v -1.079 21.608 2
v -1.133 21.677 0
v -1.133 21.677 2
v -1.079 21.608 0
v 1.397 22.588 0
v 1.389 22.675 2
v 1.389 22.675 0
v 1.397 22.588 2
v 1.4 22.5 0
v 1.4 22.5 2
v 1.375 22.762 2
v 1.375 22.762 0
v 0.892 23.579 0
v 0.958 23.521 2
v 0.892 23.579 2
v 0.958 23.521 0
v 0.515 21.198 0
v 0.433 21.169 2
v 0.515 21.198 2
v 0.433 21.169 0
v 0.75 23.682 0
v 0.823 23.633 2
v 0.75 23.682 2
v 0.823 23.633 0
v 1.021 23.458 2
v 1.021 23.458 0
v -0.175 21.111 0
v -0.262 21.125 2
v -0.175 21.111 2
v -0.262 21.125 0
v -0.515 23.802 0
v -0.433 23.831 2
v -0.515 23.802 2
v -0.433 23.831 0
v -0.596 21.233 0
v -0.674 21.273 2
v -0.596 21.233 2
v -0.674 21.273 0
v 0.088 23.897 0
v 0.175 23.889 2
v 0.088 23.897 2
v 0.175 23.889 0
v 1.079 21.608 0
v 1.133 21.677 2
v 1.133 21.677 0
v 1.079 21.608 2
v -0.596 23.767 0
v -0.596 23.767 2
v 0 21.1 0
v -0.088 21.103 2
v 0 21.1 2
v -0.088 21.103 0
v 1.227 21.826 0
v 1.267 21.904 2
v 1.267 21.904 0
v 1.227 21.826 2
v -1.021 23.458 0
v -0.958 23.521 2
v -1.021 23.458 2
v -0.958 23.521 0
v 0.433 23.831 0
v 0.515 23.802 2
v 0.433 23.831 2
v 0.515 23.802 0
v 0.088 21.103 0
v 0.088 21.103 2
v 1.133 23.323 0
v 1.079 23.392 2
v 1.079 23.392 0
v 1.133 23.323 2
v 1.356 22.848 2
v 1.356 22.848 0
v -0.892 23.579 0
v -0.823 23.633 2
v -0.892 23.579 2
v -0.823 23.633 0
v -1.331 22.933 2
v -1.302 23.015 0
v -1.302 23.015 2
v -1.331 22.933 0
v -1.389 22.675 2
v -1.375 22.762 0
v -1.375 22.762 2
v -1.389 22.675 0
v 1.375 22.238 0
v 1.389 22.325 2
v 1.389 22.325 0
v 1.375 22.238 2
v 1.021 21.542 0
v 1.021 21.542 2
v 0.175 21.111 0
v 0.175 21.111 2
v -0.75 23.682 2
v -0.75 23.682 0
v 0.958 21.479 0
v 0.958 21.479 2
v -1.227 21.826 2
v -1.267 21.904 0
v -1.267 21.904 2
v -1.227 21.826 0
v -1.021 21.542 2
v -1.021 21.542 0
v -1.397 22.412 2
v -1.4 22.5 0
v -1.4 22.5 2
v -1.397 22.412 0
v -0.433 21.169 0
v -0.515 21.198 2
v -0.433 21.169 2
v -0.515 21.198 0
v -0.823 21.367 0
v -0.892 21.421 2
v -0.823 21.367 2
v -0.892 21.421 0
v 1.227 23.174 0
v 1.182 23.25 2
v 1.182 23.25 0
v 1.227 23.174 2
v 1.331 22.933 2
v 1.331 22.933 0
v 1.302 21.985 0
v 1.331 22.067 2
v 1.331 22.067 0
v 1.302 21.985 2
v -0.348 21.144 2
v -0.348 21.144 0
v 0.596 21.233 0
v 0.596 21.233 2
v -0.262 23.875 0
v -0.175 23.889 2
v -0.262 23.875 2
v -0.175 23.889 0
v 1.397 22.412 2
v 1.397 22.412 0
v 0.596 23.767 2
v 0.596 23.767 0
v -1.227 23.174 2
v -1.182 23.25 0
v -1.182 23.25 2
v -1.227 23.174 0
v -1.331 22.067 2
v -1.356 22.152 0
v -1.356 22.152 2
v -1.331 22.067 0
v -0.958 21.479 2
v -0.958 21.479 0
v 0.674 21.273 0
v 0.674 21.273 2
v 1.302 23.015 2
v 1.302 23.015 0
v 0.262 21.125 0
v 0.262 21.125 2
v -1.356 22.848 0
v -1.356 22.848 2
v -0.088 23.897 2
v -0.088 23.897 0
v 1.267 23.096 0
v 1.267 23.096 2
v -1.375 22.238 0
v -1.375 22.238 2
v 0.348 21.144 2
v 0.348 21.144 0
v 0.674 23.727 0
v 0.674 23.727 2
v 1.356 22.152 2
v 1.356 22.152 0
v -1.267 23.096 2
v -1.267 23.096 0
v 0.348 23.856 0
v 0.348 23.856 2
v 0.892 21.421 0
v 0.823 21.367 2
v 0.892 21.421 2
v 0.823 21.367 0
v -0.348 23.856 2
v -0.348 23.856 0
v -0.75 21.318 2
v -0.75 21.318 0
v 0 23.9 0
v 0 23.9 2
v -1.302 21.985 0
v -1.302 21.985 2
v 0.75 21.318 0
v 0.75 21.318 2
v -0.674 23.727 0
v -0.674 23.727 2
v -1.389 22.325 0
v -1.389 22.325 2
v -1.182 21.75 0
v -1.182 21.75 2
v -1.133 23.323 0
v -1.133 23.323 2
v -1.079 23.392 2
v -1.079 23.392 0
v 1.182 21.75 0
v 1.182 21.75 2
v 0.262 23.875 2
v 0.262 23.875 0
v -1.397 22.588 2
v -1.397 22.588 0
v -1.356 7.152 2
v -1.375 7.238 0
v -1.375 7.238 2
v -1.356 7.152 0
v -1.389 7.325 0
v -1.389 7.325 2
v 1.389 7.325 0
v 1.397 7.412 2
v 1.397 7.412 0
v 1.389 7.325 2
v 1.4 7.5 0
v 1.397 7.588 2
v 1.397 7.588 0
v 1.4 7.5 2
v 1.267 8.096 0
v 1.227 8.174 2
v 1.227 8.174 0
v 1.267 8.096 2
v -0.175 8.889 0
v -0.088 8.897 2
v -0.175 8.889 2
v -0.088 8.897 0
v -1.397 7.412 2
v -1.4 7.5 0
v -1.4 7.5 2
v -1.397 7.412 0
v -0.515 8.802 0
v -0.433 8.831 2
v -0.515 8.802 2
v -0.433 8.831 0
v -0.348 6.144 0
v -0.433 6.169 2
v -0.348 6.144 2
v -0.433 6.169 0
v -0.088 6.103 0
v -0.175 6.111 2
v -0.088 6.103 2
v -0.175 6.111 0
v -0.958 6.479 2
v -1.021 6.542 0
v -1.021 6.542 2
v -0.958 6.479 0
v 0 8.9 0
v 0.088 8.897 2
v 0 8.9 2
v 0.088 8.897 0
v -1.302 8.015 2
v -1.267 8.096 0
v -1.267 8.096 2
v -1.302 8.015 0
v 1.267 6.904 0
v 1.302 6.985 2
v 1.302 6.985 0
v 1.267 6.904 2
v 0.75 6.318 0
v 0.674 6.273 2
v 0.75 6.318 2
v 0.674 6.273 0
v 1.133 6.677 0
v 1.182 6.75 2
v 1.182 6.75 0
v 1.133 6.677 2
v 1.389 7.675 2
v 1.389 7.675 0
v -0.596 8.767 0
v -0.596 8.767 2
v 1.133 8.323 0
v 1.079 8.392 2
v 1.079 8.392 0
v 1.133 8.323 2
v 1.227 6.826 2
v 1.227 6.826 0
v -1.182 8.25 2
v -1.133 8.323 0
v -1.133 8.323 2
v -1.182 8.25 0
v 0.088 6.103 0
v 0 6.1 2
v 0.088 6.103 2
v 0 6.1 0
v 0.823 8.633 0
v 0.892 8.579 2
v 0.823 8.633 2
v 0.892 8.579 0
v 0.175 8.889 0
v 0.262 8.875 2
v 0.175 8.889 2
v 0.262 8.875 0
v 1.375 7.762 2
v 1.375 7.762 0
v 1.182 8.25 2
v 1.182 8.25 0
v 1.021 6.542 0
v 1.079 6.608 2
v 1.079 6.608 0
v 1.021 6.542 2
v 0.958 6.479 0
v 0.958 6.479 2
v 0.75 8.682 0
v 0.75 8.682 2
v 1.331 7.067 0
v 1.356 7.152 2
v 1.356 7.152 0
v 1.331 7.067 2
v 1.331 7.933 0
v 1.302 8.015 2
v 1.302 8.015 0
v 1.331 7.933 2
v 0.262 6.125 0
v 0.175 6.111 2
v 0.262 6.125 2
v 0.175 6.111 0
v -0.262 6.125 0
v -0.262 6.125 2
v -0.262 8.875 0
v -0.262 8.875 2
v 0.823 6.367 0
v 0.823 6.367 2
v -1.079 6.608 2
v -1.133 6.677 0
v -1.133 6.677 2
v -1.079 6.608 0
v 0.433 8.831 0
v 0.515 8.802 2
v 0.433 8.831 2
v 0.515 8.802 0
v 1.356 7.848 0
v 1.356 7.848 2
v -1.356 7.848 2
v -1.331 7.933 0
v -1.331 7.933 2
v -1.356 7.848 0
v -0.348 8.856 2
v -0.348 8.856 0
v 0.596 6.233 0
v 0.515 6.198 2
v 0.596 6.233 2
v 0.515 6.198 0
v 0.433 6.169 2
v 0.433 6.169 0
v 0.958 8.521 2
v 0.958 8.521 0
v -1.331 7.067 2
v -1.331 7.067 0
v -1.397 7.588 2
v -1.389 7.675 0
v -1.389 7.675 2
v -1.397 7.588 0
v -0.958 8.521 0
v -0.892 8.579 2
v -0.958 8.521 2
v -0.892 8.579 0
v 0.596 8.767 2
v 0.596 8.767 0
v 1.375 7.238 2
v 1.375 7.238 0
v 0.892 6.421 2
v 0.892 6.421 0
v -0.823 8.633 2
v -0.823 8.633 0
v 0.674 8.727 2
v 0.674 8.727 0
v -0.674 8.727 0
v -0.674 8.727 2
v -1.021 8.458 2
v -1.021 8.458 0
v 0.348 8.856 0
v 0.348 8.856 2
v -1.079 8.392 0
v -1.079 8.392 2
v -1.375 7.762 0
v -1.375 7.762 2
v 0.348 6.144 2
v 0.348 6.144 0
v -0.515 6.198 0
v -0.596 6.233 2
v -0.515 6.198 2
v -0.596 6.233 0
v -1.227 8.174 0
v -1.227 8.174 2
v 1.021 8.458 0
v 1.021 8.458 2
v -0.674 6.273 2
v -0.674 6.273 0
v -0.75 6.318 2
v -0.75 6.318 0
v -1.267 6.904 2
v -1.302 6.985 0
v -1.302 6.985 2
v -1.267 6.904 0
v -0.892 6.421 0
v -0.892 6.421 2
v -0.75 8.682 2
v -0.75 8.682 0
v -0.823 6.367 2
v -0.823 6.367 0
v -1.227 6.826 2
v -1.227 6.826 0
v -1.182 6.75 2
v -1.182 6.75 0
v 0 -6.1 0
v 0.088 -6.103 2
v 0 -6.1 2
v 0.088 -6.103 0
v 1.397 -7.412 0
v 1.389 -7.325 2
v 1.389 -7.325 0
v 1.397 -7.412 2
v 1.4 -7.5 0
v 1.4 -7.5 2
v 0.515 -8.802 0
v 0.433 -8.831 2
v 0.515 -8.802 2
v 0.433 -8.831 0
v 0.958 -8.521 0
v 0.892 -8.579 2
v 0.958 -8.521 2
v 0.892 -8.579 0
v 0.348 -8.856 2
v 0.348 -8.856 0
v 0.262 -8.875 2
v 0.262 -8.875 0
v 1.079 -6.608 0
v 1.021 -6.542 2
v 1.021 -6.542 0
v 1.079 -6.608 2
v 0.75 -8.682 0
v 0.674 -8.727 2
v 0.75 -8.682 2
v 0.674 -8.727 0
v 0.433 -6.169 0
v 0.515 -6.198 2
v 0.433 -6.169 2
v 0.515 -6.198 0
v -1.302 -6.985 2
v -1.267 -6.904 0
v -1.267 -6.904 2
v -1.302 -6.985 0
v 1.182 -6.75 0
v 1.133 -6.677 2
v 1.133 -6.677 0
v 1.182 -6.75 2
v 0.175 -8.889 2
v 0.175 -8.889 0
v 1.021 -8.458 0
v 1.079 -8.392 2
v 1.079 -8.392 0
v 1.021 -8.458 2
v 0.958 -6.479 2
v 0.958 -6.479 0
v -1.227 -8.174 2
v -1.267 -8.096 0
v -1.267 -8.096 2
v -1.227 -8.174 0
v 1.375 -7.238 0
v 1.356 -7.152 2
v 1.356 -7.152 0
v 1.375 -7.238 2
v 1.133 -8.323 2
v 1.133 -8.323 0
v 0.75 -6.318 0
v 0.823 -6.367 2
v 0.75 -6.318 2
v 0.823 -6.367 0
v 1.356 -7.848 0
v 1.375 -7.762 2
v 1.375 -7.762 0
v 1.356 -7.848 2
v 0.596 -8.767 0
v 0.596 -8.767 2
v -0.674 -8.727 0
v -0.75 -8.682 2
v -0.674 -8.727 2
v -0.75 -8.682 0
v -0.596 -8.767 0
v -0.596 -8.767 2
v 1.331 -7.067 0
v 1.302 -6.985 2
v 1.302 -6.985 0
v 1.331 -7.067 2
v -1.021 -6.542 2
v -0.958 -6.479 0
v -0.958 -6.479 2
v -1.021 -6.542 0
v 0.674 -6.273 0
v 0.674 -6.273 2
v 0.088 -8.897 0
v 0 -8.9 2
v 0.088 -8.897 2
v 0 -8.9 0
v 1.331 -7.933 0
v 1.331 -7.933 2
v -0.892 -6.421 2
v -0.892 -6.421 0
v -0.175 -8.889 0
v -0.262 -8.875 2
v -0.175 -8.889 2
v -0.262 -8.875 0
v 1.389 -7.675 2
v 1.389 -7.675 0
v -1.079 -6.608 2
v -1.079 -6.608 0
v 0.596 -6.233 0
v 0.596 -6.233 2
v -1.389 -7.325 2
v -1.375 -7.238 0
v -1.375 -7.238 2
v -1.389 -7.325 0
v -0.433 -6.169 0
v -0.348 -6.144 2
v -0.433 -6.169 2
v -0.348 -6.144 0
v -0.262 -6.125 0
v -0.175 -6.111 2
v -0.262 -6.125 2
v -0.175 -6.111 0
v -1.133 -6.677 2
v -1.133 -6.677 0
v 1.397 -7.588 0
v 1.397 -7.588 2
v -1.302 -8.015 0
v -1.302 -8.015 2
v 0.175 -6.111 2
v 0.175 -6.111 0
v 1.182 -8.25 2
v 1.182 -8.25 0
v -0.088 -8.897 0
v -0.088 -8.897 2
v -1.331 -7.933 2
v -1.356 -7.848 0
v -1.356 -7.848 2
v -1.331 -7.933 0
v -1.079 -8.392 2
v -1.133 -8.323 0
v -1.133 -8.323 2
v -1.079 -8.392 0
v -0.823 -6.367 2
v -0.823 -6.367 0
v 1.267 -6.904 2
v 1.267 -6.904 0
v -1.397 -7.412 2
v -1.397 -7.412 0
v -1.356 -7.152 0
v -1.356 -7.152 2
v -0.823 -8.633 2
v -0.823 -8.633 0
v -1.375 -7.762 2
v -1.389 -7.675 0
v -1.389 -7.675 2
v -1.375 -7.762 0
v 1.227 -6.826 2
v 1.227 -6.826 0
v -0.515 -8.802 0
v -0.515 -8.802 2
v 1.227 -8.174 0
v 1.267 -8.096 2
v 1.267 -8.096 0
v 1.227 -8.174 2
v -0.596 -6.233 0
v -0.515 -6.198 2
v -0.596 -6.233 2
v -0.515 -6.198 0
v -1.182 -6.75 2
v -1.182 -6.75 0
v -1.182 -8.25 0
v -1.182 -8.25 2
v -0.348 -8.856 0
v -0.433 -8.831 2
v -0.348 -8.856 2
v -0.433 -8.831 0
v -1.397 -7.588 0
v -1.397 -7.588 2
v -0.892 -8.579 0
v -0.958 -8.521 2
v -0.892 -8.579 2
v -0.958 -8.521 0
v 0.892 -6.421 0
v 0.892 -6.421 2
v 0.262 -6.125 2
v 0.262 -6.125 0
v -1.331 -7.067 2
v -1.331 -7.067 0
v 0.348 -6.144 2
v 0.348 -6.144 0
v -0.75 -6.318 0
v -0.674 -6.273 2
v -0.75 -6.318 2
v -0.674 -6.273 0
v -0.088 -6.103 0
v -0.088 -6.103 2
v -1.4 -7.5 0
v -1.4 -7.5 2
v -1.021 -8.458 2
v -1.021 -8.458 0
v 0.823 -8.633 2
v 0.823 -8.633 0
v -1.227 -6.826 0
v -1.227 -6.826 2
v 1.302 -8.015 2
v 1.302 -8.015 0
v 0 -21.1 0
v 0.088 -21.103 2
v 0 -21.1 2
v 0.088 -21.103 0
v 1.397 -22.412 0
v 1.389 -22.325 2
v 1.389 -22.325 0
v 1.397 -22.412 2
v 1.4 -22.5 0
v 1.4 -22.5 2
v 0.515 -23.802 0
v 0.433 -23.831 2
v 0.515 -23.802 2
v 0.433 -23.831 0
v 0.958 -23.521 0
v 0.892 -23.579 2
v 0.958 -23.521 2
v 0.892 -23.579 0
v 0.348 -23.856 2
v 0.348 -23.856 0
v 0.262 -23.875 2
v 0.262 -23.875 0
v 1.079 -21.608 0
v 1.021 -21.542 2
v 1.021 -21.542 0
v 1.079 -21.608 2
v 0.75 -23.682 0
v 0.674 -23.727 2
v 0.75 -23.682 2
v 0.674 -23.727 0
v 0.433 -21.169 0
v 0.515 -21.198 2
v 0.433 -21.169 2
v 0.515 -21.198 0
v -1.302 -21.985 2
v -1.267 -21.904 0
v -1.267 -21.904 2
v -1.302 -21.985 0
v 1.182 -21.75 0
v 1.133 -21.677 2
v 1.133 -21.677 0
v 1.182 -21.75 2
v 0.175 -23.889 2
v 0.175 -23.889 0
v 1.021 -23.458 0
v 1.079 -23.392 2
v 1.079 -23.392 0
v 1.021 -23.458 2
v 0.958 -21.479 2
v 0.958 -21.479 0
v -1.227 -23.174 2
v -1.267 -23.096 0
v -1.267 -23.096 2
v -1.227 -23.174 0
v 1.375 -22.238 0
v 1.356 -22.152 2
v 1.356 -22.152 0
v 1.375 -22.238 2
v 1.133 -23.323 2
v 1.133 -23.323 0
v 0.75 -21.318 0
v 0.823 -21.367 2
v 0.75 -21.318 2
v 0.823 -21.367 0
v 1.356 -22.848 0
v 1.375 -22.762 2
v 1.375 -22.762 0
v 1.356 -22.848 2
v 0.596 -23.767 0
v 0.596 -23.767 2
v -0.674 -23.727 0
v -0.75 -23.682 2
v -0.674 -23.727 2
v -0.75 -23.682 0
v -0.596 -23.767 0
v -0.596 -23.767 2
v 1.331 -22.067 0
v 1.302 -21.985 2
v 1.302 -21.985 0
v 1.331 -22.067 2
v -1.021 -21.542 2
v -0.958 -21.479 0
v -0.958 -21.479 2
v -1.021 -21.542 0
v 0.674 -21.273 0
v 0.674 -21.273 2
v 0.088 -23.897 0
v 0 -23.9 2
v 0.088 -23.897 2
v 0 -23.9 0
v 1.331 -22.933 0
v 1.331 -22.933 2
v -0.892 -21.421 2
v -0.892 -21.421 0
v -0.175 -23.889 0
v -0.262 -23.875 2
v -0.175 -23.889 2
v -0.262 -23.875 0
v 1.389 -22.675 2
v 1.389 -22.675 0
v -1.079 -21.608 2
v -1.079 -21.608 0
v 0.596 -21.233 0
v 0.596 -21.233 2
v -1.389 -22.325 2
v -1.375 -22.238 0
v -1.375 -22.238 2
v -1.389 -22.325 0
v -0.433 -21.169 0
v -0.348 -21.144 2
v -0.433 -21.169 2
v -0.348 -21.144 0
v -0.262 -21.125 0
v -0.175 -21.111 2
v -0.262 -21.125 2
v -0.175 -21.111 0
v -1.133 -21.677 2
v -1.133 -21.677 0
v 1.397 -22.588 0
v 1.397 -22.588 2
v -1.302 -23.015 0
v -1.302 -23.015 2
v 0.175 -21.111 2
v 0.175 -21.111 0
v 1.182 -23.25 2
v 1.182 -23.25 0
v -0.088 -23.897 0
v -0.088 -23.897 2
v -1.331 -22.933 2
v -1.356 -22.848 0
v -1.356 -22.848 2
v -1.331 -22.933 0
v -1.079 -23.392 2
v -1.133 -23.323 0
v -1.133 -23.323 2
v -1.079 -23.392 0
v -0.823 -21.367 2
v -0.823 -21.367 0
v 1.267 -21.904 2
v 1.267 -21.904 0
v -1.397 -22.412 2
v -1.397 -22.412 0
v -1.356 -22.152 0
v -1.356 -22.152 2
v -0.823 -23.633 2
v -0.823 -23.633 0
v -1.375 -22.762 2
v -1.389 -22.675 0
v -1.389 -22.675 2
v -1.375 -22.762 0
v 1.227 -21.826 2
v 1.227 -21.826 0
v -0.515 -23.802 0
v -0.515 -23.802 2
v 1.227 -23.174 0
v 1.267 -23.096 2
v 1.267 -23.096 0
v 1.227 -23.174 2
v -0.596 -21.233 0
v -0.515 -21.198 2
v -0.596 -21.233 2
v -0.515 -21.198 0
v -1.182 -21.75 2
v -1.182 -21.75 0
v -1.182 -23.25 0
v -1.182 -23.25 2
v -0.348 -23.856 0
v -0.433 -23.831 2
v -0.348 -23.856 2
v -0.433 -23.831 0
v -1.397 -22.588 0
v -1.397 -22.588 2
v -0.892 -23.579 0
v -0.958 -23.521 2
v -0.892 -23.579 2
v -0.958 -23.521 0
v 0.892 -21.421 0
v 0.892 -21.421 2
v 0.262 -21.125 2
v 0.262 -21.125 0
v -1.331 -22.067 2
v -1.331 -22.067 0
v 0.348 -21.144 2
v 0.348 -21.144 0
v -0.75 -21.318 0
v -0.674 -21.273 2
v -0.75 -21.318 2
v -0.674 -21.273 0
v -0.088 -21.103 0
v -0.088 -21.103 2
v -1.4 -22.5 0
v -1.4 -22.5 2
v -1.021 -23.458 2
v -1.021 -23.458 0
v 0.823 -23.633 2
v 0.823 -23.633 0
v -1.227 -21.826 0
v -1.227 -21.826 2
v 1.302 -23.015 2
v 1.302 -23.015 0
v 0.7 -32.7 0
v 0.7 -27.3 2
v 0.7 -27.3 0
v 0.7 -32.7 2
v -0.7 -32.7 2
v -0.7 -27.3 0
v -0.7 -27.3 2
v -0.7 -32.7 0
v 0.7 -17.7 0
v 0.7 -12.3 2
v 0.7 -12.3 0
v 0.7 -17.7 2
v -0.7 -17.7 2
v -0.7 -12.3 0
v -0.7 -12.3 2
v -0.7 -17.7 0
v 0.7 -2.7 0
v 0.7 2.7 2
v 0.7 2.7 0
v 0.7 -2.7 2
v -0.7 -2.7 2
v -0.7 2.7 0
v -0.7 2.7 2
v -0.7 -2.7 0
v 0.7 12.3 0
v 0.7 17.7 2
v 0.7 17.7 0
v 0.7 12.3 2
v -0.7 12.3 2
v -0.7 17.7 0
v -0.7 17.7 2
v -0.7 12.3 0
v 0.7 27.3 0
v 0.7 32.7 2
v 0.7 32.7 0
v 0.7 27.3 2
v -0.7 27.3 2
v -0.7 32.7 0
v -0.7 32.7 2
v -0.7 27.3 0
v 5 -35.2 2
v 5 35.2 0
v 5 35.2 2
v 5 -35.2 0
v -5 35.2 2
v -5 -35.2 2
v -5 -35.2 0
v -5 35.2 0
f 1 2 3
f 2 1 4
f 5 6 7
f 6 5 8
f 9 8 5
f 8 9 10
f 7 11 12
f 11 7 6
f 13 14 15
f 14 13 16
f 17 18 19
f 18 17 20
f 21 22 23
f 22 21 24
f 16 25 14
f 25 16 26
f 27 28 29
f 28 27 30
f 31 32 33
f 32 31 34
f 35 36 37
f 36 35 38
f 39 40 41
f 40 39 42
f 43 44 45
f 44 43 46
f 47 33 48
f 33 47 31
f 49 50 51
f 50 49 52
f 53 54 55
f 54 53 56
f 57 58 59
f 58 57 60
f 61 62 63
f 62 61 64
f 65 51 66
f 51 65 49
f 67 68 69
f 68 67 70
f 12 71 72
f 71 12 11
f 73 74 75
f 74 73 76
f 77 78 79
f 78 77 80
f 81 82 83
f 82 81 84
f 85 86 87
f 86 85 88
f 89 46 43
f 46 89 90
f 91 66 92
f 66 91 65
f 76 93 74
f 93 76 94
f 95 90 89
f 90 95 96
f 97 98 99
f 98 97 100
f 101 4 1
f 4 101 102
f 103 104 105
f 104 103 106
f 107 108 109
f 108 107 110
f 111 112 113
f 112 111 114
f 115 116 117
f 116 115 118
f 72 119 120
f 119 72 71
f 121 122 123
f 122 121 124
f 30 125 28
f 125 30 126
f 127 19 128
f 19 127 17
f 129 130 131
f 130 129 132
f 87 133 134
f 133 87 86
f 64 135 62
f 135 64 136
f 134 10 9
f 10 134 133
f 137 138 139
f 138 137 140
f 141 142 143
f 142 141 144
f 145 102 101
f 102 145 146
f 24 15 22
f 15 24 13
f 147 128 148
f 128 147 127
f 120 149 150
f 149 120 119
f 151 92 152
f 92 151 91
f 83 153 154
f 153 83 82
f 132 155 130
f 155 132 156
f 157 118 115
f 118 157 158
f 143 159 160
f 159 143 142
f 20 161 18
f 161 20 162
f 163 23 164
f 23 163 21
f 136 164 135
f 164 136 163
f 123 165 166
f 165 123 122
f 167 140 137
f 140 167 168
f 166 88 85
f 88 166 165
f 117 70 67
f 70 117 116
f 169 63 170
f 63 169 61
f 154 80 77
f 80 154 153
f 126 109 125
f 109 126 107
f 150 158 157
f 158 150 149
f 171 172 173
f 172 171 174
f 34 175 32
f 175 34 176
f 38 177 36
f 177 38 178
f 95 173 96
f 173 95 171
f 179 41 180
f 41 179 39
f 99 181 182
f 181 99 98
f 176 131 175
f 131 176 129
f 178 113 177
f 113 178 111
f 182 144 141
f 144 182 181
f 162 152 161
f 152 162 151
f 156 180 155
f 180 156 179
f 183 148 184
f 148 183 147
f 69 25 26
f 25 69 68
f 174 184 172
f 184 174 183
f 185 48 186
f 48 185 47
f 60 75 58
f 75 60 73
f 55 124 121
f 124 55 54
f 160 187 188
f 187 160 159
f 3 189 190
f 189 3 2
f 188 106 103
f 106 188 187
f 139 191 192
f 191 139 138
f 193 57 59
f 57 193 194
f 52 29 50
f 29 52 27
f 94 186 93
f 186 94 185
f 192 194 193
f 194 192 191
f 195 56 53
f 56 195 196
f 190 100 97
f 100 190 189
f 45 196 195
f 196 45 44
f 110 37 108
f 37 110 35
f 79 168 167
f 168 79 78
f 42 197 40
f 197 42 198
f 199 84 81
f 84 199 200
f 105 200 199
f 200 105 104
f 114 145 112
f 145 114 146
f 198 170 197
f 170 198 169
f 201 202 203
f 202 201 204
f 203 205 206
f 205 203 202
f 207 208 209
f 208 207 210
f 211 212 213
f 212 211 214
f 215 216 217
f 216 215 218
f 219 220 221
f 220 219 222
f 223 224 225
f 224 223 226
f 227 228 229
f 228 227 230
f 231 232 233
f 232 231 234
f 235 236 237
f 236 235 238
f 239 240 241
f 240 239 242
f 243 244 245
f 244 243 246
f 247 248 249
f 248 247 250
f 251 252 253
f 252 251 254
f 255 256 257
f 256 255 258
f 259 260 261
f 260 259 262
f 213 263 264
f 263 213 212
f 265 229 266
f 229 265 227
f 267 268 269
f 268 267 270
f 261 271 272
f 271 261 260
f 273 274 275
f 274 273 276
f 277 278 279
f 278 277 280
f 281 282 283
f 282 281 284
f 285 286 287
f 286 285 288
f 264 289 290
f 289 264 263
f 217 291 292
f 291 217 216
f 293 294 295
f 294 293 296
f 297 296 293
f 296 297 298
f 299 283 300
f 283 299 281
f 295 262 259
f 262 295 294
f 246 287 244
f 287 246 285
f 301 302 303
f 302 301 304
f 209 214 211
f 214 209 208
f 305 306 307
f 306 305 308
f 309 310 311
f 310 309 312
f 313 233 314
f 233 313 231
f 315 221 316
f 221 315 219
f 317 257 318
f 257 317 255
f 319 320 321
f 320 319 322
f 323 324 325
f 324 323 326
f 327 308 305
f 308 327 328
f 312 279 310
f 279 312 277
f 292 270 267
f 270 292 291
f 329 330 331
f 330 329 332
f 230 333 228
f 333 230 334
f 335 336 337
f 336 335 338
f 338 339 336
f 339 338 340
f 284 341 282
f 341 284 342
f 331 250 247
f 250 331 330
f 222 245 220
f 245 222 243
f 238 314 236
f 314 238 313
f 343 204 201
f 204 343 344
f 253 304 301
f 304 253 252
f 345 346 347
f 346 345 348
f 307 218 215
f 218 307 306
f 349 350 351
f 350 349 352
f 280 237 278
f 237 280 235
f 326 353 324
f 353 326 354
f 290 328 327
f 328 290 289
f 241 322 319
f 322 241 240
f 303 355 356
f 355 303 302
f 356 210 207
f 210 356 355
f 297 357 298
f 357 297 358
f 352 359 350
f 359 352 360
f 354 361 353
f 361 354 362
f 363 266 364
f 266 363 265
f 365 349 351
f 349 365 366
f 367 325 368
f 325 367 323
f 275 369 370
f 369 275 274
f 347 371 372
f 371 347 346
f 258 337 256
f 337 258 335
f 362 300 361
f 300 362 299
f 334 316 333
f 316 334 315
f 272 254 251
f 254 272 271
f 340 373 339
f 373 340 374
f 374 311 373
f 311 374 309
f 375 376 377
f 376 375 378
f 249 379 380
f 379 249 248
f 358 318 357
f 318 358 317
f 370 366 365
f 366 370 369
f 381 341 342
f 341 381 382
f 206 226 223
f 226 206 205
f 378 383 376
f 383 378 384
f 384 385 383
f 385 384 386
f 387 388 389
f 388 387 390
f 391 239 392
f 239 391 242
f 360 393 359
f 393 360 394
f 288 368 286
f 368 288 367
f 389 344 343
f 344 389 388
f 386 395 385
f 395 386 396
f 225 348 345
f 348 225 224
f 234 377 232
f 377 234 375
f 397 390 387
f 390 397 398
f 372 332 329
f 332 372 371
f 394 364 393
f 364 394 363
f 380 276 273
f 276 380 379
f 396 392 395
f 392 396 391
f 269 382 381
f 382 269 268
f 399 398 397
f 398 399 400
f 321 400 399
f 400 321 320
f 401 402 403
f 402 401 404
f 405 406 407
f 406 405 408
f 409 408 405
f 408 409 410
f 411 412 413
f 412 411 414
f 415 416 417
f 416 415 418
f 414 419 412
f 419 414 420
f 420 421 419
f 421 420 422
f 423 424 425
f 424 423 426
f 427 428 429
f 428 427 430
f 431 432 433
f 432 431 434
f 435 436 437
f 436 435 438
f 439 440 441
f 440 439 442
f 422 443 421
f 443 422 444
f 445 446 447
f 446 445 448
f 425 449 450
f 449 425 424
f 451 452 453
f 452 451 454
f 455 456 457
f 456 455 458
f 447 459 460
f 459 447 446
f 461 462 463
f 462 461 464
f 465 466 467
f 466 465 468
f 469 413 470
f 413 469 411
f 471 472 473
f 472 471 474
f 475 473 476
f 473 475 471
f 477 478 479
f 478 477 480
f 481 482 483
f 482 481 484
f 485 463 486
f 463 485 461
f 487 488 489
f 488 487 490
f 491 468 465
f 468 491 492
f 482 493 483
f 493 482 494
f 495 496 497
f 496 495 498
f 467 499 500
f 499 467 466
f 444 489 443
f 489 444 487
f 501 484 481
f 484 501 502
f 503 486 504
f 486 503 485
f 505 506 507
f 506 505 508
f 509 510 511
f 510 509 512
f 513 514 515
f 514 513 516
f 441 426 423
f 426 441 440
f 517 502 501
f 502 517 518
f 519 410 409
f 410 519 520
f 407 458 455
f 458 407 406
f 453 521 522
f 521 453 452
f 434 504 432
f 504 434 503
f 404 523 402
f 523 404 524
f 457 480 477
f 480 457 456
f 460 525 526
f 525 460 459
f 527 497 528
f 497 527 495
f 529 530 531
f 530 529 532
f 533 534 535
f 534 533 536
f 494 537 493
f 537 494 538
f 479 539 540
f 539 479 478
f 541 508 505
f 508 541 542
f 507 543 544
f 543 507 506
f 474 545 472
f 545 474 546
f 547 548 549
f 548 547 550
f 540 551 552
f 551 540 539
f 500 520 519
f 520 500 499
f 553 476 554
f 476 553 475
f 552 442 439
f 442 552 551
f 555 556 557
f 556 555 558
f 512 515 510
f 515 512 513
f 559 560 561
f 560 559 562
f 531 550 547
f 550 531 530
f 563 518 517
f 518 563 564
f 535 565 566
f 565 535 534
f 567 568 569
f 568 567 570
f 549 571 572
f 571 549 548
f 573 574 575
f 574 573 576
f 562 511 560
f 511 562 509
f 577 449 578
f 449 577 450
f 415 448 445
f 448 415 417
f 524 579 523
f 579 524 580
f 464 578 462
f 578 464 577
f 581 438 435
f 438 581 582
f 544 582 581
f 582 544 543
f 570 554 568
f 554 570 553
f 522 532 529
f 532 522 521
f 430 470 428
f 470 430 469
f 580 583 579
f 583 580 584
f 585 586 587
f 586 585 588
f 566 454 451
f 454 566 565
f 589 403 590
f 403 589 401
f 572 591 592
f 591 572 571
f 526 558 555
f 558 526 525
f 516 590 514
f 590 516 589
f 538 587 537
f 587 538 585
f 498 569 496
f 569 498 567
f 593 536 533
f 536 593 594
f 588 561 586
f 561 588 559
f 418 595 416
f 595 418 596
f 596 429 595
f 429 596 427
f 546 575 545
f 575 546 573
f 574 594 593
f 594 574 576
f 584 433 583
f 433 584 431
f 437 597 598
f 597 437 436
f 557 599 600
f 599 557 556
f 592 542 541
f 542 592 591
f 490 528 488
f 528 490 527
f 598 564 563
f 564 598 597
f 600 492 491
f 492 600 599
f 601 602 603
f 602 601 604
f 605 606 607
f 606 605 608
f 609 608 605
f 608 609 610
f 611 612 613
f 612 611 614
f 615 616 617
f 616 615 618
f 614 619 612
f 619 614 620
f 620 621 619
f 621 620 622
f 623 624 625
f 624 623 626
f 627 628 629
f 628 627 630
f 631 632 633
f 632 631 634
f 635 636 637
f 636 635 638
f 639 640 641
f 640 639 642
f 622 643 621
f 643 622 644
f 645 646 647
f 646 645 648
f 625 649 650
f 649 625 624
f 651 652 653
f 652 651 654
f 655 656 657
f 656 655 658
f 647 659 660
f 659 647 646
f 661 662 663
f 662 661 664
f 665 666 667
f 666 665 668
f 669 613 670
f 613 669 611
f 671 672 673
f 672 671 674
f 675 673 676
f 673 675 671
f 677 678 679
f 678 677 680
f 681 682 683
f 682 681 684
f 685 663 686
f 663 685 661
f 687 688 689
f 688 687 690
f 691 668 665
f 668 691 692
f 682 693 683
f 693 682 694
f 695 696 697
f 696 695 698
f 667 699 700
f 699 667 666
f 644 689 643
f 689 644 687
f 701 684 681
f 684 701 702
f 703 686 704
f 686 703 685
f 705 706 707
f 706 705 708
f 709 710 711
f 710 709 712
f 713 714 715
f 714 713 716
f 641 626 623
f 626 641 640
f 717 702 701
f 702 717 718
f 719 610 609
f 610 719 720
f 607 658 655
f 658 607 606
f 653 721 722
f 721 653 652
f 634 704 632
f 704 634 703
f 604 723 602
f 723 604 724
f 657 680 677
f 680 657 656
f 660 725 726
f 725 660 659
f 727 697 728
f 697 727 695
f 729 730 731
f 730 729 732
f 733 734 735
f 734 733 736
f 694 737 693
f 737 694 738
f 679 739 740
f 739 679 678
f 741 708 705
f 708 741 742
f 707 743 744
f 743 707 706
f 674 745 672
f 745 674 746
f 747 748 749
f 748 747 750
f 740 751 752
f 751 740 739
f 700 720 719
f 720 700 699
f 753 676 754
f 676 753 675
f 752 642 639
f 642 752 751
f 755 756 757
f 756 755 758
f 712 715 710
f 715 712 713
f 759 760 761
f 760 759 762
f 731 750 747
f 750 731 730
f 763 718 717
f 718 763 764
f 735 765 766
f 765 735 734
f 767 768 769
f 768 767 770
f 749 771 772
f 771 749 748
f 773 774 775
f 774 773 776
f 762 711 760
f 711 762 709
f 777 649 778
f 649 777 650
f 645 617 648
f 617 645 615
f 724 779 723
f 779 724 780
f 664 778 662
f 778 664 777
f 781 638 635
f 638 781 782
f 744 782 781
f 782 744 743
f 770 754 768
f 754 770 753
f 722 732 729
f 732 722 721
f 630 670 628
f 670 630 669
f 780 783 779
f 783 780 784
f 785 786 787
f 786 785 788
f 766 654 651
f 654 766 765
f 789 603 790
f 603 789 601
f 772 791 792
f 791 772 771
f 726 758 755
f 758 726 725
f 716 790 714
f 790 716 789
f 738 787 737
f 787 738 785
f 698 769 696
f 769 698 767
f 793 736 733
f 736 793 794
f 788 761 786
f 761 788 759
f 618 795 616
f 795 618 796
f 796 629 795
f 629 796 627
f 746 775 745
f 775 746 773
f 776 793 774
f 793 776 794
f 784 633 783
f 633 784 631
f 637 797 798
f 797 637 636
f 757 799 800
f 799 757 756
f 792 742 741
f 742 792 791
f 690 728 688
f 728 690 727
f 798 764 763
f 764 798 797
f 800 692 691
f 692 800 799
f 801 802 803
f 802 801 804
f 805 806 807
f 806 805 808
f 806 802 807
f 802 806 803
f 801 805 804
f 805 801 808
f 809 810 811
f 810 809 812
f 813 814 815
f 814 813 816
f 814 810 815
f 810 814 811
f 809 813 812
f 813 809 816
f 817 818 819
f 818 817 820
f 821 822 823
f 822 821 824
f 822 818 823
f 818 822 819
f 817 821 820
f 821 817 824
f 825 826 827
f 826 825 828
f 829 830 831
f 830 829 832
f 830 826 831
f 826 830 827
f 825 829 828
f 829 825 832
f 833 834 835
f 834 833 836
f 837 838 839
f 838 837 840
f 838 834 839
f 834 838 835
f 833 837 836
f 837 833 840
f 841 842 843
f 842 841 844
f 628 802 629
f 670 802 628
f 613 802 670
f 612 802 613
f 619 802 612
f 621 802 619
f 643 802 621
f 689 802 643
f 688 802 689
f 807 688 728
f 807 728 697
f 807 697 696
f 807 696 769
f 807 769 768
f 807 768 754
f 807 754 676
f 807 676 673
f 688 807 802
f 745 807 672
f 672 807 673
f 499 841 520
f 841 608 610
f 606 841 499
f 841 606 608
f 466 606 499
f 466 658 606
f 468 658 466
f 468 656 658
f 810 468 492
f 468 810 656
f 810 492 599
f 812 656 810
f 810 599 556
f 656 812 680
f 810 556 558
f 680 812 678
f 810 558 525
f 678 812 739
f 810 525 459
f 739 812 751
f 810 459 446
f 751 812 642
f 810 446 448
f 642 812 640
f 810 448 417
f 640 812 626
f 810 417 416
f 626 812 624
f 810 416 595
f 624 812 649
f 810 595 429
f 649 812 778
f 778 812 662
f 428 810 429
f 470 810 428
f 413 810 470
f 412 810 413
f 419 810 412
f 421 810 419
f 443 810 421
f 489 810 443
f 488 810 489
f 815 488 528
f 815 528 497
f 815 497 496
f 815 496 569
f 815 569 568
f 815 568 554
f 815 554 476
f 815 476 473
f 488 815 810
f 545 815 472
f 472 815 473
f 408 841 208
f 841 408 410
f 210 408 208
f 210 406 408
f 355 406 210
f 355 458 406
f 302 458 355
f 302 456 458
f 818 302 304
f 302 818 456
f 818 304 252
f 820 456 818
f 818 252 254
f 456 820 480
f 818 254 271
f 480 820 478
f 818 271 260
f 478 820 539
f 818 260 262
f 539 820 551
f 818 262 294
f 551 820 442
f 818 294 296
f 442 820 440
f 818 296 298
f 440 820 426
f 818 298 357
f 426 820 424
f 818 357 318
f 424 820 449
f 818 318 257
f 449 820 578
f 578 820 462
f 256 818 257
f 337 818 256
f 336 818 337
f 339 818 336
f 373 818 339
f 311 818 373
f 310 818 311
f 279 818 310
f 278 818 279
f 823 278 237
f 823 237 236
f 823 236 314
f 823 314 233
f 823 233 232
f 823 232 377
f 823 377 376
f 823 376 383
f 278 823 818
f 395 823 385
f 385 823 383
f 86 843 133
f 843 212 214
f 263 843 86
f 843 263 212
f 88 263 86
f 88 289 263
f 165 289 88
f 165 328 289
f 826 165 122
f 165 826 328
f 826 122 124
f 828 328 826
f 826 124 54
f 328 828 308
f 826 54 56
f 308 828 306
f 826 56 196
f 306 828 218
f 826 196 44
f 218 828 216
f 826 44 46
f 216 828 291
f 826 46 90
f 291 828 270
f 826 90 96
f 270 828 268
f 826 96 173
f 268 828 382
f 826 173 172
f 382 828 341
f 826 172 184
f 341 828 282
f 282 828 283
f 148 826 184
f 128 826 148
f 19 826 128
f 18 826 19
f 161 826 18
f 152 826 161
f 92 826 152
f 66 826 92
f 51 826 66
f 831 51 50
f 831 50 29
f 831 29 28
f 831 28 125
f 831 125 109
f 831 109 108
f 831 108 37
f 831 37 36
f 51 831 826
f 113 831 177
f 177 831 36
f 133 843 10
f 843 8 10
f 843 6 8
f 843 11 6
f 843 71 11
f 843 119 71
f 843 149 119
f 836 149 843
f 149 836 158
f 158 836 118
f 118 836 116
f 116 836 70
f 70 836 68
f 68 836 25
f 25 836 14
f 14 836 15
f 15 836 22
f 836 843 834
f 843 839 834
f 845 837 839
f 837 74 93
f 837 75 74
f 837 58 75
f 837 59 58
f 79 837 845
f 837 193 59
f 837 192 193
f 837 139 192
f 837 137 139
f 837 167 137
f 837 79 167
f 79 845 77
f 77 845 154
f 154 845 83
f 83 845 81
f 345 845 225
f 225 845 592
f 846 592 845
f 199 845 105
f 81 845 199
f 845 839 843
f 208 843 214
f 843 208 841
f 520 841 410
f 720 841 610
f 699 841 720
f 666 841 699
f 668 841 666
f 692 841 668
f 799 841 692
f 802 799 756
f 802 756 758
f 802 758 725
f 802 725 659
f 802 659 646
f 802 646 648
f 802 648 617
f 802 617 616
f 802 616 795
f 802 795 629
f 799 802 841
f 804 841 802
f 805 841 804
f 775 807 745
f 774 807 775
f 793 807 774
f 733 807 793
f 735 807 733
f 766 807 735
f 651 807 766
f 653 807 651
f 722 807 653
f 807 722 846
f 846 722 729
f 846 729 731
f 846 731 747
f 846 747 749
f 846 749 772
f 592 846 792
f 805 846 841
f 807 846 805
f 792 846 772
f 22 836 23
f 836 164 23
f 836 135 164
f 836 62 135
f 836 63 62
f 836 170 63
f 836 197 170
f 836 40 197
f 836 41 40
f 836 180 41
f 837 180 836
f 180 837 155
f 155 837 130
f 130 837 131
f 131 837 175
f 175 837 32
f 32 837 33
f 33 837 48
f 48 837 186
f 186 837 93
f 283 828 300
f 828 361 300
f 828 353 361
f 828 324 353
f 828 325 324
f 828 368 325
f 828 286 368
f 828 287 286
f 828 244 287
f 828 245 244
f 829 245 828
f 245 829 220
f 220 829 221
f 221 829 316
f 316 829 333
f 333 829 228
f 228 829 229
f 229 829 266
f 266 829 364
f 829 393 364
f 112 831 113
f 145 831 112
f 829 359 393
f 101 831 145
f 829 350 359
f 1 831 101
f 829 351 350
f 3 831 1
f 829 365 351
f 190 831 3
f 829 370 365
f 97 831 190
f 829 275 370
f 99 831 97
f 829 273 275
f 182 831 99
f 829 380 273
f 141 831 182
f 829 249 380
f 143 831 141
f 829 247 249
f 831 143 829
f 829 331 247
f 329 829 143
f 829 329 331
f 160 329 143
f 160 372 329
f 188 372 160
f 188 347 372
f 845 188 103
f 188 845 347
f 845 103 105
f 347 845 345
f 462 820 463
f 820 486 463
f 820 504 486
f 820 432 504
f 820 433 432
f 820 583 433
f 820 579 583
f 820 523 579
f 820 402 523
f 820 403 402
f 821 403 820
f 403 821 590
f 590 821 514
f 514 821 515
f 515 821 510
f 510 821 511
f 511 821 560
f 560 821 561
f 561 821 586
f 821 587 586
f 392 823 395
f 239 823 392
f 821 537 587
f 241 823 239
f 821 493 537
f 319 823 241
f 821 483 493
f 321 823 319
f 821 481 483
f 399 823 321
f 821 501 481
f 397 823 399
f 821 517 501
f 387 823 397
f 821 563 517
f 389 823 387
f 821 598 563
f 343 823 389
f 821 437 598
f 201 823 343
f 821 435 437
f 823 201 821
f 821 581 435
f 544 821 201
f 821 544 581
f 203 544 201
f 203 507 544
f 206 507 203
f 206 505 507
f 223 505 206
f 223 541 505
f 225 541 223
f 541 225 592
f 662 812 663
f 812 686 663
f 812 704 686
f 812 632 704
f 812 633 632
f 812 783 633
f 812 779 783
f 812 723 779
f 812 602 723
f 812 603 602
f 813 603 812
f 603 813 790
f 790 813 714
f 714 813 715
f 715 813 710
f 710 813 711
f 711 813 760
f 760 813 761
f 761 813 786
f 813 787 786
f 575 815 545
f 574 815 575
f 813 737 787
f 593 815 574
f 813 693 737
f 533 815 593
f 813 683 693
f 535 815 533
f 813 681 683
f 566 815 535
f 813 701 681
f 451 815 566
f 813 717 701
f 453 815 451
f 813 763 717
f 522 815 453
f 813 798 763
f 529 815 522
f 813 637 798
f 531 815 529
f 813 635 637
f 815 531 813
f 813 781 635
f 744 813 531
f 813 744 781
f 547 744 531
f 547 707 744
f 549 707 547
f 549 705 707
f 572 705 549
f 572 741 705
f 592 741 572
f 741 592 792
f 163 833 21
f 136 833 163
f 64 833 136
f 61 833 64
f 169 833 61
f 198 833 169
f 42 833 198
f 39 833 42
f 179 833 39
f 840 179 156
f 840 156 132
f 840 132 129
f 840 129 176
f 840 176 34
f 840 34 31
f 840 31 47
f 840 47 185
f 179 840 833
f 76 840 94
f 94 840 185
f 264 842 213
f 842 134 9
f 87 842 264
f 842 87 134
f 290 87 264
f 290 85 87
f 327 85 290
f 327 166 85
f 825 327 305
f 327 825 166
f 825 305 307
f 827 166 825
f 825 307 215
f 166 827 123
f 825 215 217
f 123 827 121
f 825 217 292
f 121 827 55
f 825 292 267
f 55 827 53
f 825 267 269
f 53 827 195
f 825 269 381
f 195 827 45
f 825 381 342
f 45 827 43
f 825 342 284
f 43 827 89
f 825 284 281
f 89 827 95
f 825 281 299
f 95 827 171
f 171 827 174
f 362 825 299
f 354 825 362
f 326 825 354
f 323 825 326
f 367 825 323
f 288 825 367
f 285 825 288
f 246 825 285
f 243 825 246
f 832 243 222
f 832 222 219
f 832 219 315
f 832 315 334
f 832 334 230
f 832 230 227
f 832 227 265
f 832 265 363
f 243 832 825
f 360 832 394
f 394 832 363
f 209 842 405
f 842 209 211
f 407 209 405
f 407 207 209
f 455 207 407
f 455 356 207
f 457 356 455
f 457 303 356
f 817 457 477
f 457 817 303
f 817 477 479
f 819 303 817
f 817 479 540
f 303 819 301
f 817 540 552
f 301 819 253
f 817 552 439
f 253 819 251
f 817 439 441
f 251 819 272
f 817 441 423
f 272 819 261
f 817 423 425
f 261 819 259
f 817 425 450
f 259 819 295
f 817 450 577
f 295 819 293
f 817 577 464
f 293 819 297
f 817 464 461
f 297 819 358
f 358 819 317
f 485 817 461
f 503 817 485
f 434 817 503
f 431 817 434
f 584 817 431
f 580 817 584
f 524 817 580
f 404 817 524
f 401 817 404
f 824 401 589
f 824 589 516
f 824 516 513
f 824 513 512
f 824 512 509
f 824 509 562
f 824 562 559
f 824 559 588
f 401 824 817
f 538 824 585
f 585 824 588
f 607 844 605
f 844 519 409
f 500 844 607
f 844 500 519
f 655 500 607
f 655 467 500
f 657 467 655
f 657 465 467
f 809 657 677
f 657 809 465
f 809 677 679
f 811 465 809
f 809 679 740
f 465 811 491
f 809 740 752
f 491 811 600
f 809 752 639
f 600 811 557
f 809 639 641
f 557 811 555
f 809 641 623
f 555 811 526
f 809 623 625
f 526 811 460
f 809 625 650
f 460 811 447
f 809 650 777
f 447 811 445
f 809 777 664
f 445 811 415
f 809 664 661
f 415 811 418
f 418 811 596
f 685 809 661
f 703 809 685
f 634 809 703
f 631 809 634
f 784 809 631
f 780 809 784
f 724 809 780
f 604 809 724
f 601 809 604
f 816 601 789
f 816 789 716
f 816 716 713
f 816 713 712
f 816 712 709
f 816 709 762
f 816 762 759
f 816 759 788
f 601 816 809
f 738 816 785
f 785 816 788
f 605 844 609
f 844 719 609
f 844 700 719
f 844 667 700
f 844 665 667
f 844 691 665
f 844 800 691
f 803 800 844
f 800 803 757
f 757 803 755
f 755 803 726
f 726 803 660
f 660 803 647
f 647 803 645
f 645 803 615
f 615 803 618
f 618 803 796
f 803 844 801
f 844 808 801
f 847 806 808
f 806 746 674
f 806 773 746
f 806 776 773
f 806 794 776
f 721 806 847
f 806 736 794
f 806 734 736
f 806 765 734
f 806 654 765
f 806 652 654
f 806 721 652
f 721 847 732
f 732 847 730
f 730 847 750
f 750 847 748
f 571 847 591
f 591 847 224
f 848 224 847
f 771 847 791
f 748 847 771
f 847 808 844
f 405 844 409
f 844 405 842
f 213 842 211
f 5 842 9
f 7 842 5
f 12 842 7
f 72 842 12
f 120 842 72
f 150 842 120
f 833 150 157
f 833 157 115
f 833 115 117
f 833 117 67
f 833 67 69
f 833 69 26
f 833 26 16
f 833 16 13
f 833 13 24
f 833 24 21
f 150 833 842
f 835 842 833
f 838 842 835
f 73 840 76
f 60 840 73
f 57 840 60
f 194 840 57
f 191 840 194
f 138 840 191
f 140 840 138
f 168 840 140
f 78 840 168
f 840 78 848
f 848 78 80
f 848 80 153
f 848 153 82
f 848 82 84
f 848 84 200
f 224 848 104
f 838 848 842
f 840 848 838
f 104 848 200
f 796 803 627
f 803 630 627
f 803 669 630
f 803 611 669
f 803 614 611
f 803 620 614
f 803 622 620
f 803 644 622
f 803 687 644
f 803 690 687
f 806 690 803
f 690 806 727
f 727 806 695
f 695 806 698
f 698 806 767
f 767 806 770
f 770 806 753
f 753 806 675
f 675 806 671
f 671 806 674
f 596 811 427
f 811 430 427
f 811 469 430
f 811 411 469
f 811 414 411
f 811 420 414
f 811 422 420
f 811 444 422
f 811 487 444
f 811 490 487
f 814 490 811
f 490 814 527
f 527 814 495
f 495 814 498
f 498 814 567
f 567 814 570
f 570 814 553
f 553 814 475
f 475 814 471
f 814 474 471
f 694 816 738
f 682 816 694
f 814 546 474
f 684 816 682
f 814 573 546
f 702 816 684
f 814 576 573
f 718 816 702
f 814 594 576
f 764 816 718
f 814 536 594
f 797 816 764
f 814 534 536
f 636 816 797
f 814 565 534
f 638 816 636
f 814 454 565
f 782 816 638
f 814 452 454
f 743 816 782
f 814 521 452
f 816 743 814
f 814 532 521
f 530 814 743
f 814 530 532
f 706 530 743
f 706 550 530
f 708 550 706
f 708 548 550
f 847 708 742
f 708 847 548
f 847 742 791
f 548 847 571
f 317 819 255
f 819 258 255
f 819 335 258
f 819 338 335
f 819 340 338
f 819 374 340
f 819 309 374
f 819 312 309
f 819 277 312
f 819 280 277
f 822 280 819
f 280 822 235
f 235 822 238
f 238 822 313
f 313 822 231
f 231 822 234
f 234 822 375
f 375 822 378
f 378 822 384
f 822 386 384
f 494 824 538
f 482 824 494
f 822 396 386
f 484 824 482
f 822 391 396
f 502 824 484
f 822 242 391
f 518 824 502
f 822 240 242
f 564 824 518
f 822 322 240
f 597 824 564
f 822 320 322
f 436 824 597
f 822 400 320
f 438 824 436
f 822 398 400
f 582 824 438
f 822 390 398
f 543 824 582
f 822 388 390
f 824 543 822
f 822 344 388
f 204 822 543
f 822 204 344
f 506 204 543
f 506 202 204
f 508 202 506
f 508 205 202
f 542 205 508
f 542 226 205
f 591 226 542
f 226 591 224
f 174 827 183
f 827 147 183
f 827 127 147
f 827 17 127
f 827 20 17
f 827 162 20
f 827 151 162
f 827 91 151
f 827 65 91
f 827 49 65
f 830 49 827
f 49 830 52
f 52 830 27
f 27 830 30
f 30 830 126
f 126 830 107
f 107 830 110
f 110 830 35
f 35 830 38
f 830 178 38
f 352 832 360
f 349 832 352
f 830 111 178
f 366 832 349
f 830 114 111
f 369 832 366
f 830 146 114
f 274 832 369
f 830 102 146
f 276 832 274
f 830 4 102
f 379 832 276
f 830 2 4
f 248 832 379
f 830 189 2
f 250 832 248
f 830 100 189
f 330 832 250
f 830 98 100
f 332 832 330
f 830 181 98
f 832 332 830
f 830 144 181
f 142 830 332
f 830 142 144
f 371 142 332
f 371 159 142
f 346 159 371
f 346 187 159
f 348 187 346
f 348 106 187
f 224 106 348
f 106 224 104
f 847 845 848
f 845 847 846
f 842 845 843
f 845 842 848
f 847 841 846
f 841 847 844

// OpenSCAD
/* [Options] */
draw_panel_extrusions = false;

/* [Hidden] */
$fn=100;

wall_thickness = 2.0;
extrusion_length = 10;

num_slots = 5;
slot_length = 5.4;
slot_width = 1.4;
slot_space = 15;
total_slots_length = (num_slots * slot_length) + ((num_slots - 1) * (slot_space - slot_length));

screw_hole_diameter = 2.8;

plank_width = 10;
plank_length = total_slots_length + 5;

module slots() {
	for (n = [0:num_slots - 1]) {
		x_pos = 0;
		y_pos = (n * slot_space) - (total_slots_length - slot_length)/2;
		z_pos = 0;

		translate([x_pos, y_pos, z_pos])
		// rotate([0, 0, 90])
		cube([slot_width, slot_length, 10], center=true);
	}
}

module plank() {
	translate([-plank_width/2, -plank_length/2, 0])
	cube([plank_width, plank_length, wall_thickness]);
}

module screw_holes() {
	y_offset = slot_space * 0.5;

	for (n = [3, 1, -1, -3]) {
		color("red")
		translate([0, y_offset * n, -(extrusion_length - wall_thickness)/2])
		cylinder(extrusion_length, d=screw_hole_diameter, center=false);
		
	}
}

if (draw_panel_extrusions) {
	screw_holes();
} else {
	difference()
	{
		plank();
		slots();
		screw_holes();
	}
}
